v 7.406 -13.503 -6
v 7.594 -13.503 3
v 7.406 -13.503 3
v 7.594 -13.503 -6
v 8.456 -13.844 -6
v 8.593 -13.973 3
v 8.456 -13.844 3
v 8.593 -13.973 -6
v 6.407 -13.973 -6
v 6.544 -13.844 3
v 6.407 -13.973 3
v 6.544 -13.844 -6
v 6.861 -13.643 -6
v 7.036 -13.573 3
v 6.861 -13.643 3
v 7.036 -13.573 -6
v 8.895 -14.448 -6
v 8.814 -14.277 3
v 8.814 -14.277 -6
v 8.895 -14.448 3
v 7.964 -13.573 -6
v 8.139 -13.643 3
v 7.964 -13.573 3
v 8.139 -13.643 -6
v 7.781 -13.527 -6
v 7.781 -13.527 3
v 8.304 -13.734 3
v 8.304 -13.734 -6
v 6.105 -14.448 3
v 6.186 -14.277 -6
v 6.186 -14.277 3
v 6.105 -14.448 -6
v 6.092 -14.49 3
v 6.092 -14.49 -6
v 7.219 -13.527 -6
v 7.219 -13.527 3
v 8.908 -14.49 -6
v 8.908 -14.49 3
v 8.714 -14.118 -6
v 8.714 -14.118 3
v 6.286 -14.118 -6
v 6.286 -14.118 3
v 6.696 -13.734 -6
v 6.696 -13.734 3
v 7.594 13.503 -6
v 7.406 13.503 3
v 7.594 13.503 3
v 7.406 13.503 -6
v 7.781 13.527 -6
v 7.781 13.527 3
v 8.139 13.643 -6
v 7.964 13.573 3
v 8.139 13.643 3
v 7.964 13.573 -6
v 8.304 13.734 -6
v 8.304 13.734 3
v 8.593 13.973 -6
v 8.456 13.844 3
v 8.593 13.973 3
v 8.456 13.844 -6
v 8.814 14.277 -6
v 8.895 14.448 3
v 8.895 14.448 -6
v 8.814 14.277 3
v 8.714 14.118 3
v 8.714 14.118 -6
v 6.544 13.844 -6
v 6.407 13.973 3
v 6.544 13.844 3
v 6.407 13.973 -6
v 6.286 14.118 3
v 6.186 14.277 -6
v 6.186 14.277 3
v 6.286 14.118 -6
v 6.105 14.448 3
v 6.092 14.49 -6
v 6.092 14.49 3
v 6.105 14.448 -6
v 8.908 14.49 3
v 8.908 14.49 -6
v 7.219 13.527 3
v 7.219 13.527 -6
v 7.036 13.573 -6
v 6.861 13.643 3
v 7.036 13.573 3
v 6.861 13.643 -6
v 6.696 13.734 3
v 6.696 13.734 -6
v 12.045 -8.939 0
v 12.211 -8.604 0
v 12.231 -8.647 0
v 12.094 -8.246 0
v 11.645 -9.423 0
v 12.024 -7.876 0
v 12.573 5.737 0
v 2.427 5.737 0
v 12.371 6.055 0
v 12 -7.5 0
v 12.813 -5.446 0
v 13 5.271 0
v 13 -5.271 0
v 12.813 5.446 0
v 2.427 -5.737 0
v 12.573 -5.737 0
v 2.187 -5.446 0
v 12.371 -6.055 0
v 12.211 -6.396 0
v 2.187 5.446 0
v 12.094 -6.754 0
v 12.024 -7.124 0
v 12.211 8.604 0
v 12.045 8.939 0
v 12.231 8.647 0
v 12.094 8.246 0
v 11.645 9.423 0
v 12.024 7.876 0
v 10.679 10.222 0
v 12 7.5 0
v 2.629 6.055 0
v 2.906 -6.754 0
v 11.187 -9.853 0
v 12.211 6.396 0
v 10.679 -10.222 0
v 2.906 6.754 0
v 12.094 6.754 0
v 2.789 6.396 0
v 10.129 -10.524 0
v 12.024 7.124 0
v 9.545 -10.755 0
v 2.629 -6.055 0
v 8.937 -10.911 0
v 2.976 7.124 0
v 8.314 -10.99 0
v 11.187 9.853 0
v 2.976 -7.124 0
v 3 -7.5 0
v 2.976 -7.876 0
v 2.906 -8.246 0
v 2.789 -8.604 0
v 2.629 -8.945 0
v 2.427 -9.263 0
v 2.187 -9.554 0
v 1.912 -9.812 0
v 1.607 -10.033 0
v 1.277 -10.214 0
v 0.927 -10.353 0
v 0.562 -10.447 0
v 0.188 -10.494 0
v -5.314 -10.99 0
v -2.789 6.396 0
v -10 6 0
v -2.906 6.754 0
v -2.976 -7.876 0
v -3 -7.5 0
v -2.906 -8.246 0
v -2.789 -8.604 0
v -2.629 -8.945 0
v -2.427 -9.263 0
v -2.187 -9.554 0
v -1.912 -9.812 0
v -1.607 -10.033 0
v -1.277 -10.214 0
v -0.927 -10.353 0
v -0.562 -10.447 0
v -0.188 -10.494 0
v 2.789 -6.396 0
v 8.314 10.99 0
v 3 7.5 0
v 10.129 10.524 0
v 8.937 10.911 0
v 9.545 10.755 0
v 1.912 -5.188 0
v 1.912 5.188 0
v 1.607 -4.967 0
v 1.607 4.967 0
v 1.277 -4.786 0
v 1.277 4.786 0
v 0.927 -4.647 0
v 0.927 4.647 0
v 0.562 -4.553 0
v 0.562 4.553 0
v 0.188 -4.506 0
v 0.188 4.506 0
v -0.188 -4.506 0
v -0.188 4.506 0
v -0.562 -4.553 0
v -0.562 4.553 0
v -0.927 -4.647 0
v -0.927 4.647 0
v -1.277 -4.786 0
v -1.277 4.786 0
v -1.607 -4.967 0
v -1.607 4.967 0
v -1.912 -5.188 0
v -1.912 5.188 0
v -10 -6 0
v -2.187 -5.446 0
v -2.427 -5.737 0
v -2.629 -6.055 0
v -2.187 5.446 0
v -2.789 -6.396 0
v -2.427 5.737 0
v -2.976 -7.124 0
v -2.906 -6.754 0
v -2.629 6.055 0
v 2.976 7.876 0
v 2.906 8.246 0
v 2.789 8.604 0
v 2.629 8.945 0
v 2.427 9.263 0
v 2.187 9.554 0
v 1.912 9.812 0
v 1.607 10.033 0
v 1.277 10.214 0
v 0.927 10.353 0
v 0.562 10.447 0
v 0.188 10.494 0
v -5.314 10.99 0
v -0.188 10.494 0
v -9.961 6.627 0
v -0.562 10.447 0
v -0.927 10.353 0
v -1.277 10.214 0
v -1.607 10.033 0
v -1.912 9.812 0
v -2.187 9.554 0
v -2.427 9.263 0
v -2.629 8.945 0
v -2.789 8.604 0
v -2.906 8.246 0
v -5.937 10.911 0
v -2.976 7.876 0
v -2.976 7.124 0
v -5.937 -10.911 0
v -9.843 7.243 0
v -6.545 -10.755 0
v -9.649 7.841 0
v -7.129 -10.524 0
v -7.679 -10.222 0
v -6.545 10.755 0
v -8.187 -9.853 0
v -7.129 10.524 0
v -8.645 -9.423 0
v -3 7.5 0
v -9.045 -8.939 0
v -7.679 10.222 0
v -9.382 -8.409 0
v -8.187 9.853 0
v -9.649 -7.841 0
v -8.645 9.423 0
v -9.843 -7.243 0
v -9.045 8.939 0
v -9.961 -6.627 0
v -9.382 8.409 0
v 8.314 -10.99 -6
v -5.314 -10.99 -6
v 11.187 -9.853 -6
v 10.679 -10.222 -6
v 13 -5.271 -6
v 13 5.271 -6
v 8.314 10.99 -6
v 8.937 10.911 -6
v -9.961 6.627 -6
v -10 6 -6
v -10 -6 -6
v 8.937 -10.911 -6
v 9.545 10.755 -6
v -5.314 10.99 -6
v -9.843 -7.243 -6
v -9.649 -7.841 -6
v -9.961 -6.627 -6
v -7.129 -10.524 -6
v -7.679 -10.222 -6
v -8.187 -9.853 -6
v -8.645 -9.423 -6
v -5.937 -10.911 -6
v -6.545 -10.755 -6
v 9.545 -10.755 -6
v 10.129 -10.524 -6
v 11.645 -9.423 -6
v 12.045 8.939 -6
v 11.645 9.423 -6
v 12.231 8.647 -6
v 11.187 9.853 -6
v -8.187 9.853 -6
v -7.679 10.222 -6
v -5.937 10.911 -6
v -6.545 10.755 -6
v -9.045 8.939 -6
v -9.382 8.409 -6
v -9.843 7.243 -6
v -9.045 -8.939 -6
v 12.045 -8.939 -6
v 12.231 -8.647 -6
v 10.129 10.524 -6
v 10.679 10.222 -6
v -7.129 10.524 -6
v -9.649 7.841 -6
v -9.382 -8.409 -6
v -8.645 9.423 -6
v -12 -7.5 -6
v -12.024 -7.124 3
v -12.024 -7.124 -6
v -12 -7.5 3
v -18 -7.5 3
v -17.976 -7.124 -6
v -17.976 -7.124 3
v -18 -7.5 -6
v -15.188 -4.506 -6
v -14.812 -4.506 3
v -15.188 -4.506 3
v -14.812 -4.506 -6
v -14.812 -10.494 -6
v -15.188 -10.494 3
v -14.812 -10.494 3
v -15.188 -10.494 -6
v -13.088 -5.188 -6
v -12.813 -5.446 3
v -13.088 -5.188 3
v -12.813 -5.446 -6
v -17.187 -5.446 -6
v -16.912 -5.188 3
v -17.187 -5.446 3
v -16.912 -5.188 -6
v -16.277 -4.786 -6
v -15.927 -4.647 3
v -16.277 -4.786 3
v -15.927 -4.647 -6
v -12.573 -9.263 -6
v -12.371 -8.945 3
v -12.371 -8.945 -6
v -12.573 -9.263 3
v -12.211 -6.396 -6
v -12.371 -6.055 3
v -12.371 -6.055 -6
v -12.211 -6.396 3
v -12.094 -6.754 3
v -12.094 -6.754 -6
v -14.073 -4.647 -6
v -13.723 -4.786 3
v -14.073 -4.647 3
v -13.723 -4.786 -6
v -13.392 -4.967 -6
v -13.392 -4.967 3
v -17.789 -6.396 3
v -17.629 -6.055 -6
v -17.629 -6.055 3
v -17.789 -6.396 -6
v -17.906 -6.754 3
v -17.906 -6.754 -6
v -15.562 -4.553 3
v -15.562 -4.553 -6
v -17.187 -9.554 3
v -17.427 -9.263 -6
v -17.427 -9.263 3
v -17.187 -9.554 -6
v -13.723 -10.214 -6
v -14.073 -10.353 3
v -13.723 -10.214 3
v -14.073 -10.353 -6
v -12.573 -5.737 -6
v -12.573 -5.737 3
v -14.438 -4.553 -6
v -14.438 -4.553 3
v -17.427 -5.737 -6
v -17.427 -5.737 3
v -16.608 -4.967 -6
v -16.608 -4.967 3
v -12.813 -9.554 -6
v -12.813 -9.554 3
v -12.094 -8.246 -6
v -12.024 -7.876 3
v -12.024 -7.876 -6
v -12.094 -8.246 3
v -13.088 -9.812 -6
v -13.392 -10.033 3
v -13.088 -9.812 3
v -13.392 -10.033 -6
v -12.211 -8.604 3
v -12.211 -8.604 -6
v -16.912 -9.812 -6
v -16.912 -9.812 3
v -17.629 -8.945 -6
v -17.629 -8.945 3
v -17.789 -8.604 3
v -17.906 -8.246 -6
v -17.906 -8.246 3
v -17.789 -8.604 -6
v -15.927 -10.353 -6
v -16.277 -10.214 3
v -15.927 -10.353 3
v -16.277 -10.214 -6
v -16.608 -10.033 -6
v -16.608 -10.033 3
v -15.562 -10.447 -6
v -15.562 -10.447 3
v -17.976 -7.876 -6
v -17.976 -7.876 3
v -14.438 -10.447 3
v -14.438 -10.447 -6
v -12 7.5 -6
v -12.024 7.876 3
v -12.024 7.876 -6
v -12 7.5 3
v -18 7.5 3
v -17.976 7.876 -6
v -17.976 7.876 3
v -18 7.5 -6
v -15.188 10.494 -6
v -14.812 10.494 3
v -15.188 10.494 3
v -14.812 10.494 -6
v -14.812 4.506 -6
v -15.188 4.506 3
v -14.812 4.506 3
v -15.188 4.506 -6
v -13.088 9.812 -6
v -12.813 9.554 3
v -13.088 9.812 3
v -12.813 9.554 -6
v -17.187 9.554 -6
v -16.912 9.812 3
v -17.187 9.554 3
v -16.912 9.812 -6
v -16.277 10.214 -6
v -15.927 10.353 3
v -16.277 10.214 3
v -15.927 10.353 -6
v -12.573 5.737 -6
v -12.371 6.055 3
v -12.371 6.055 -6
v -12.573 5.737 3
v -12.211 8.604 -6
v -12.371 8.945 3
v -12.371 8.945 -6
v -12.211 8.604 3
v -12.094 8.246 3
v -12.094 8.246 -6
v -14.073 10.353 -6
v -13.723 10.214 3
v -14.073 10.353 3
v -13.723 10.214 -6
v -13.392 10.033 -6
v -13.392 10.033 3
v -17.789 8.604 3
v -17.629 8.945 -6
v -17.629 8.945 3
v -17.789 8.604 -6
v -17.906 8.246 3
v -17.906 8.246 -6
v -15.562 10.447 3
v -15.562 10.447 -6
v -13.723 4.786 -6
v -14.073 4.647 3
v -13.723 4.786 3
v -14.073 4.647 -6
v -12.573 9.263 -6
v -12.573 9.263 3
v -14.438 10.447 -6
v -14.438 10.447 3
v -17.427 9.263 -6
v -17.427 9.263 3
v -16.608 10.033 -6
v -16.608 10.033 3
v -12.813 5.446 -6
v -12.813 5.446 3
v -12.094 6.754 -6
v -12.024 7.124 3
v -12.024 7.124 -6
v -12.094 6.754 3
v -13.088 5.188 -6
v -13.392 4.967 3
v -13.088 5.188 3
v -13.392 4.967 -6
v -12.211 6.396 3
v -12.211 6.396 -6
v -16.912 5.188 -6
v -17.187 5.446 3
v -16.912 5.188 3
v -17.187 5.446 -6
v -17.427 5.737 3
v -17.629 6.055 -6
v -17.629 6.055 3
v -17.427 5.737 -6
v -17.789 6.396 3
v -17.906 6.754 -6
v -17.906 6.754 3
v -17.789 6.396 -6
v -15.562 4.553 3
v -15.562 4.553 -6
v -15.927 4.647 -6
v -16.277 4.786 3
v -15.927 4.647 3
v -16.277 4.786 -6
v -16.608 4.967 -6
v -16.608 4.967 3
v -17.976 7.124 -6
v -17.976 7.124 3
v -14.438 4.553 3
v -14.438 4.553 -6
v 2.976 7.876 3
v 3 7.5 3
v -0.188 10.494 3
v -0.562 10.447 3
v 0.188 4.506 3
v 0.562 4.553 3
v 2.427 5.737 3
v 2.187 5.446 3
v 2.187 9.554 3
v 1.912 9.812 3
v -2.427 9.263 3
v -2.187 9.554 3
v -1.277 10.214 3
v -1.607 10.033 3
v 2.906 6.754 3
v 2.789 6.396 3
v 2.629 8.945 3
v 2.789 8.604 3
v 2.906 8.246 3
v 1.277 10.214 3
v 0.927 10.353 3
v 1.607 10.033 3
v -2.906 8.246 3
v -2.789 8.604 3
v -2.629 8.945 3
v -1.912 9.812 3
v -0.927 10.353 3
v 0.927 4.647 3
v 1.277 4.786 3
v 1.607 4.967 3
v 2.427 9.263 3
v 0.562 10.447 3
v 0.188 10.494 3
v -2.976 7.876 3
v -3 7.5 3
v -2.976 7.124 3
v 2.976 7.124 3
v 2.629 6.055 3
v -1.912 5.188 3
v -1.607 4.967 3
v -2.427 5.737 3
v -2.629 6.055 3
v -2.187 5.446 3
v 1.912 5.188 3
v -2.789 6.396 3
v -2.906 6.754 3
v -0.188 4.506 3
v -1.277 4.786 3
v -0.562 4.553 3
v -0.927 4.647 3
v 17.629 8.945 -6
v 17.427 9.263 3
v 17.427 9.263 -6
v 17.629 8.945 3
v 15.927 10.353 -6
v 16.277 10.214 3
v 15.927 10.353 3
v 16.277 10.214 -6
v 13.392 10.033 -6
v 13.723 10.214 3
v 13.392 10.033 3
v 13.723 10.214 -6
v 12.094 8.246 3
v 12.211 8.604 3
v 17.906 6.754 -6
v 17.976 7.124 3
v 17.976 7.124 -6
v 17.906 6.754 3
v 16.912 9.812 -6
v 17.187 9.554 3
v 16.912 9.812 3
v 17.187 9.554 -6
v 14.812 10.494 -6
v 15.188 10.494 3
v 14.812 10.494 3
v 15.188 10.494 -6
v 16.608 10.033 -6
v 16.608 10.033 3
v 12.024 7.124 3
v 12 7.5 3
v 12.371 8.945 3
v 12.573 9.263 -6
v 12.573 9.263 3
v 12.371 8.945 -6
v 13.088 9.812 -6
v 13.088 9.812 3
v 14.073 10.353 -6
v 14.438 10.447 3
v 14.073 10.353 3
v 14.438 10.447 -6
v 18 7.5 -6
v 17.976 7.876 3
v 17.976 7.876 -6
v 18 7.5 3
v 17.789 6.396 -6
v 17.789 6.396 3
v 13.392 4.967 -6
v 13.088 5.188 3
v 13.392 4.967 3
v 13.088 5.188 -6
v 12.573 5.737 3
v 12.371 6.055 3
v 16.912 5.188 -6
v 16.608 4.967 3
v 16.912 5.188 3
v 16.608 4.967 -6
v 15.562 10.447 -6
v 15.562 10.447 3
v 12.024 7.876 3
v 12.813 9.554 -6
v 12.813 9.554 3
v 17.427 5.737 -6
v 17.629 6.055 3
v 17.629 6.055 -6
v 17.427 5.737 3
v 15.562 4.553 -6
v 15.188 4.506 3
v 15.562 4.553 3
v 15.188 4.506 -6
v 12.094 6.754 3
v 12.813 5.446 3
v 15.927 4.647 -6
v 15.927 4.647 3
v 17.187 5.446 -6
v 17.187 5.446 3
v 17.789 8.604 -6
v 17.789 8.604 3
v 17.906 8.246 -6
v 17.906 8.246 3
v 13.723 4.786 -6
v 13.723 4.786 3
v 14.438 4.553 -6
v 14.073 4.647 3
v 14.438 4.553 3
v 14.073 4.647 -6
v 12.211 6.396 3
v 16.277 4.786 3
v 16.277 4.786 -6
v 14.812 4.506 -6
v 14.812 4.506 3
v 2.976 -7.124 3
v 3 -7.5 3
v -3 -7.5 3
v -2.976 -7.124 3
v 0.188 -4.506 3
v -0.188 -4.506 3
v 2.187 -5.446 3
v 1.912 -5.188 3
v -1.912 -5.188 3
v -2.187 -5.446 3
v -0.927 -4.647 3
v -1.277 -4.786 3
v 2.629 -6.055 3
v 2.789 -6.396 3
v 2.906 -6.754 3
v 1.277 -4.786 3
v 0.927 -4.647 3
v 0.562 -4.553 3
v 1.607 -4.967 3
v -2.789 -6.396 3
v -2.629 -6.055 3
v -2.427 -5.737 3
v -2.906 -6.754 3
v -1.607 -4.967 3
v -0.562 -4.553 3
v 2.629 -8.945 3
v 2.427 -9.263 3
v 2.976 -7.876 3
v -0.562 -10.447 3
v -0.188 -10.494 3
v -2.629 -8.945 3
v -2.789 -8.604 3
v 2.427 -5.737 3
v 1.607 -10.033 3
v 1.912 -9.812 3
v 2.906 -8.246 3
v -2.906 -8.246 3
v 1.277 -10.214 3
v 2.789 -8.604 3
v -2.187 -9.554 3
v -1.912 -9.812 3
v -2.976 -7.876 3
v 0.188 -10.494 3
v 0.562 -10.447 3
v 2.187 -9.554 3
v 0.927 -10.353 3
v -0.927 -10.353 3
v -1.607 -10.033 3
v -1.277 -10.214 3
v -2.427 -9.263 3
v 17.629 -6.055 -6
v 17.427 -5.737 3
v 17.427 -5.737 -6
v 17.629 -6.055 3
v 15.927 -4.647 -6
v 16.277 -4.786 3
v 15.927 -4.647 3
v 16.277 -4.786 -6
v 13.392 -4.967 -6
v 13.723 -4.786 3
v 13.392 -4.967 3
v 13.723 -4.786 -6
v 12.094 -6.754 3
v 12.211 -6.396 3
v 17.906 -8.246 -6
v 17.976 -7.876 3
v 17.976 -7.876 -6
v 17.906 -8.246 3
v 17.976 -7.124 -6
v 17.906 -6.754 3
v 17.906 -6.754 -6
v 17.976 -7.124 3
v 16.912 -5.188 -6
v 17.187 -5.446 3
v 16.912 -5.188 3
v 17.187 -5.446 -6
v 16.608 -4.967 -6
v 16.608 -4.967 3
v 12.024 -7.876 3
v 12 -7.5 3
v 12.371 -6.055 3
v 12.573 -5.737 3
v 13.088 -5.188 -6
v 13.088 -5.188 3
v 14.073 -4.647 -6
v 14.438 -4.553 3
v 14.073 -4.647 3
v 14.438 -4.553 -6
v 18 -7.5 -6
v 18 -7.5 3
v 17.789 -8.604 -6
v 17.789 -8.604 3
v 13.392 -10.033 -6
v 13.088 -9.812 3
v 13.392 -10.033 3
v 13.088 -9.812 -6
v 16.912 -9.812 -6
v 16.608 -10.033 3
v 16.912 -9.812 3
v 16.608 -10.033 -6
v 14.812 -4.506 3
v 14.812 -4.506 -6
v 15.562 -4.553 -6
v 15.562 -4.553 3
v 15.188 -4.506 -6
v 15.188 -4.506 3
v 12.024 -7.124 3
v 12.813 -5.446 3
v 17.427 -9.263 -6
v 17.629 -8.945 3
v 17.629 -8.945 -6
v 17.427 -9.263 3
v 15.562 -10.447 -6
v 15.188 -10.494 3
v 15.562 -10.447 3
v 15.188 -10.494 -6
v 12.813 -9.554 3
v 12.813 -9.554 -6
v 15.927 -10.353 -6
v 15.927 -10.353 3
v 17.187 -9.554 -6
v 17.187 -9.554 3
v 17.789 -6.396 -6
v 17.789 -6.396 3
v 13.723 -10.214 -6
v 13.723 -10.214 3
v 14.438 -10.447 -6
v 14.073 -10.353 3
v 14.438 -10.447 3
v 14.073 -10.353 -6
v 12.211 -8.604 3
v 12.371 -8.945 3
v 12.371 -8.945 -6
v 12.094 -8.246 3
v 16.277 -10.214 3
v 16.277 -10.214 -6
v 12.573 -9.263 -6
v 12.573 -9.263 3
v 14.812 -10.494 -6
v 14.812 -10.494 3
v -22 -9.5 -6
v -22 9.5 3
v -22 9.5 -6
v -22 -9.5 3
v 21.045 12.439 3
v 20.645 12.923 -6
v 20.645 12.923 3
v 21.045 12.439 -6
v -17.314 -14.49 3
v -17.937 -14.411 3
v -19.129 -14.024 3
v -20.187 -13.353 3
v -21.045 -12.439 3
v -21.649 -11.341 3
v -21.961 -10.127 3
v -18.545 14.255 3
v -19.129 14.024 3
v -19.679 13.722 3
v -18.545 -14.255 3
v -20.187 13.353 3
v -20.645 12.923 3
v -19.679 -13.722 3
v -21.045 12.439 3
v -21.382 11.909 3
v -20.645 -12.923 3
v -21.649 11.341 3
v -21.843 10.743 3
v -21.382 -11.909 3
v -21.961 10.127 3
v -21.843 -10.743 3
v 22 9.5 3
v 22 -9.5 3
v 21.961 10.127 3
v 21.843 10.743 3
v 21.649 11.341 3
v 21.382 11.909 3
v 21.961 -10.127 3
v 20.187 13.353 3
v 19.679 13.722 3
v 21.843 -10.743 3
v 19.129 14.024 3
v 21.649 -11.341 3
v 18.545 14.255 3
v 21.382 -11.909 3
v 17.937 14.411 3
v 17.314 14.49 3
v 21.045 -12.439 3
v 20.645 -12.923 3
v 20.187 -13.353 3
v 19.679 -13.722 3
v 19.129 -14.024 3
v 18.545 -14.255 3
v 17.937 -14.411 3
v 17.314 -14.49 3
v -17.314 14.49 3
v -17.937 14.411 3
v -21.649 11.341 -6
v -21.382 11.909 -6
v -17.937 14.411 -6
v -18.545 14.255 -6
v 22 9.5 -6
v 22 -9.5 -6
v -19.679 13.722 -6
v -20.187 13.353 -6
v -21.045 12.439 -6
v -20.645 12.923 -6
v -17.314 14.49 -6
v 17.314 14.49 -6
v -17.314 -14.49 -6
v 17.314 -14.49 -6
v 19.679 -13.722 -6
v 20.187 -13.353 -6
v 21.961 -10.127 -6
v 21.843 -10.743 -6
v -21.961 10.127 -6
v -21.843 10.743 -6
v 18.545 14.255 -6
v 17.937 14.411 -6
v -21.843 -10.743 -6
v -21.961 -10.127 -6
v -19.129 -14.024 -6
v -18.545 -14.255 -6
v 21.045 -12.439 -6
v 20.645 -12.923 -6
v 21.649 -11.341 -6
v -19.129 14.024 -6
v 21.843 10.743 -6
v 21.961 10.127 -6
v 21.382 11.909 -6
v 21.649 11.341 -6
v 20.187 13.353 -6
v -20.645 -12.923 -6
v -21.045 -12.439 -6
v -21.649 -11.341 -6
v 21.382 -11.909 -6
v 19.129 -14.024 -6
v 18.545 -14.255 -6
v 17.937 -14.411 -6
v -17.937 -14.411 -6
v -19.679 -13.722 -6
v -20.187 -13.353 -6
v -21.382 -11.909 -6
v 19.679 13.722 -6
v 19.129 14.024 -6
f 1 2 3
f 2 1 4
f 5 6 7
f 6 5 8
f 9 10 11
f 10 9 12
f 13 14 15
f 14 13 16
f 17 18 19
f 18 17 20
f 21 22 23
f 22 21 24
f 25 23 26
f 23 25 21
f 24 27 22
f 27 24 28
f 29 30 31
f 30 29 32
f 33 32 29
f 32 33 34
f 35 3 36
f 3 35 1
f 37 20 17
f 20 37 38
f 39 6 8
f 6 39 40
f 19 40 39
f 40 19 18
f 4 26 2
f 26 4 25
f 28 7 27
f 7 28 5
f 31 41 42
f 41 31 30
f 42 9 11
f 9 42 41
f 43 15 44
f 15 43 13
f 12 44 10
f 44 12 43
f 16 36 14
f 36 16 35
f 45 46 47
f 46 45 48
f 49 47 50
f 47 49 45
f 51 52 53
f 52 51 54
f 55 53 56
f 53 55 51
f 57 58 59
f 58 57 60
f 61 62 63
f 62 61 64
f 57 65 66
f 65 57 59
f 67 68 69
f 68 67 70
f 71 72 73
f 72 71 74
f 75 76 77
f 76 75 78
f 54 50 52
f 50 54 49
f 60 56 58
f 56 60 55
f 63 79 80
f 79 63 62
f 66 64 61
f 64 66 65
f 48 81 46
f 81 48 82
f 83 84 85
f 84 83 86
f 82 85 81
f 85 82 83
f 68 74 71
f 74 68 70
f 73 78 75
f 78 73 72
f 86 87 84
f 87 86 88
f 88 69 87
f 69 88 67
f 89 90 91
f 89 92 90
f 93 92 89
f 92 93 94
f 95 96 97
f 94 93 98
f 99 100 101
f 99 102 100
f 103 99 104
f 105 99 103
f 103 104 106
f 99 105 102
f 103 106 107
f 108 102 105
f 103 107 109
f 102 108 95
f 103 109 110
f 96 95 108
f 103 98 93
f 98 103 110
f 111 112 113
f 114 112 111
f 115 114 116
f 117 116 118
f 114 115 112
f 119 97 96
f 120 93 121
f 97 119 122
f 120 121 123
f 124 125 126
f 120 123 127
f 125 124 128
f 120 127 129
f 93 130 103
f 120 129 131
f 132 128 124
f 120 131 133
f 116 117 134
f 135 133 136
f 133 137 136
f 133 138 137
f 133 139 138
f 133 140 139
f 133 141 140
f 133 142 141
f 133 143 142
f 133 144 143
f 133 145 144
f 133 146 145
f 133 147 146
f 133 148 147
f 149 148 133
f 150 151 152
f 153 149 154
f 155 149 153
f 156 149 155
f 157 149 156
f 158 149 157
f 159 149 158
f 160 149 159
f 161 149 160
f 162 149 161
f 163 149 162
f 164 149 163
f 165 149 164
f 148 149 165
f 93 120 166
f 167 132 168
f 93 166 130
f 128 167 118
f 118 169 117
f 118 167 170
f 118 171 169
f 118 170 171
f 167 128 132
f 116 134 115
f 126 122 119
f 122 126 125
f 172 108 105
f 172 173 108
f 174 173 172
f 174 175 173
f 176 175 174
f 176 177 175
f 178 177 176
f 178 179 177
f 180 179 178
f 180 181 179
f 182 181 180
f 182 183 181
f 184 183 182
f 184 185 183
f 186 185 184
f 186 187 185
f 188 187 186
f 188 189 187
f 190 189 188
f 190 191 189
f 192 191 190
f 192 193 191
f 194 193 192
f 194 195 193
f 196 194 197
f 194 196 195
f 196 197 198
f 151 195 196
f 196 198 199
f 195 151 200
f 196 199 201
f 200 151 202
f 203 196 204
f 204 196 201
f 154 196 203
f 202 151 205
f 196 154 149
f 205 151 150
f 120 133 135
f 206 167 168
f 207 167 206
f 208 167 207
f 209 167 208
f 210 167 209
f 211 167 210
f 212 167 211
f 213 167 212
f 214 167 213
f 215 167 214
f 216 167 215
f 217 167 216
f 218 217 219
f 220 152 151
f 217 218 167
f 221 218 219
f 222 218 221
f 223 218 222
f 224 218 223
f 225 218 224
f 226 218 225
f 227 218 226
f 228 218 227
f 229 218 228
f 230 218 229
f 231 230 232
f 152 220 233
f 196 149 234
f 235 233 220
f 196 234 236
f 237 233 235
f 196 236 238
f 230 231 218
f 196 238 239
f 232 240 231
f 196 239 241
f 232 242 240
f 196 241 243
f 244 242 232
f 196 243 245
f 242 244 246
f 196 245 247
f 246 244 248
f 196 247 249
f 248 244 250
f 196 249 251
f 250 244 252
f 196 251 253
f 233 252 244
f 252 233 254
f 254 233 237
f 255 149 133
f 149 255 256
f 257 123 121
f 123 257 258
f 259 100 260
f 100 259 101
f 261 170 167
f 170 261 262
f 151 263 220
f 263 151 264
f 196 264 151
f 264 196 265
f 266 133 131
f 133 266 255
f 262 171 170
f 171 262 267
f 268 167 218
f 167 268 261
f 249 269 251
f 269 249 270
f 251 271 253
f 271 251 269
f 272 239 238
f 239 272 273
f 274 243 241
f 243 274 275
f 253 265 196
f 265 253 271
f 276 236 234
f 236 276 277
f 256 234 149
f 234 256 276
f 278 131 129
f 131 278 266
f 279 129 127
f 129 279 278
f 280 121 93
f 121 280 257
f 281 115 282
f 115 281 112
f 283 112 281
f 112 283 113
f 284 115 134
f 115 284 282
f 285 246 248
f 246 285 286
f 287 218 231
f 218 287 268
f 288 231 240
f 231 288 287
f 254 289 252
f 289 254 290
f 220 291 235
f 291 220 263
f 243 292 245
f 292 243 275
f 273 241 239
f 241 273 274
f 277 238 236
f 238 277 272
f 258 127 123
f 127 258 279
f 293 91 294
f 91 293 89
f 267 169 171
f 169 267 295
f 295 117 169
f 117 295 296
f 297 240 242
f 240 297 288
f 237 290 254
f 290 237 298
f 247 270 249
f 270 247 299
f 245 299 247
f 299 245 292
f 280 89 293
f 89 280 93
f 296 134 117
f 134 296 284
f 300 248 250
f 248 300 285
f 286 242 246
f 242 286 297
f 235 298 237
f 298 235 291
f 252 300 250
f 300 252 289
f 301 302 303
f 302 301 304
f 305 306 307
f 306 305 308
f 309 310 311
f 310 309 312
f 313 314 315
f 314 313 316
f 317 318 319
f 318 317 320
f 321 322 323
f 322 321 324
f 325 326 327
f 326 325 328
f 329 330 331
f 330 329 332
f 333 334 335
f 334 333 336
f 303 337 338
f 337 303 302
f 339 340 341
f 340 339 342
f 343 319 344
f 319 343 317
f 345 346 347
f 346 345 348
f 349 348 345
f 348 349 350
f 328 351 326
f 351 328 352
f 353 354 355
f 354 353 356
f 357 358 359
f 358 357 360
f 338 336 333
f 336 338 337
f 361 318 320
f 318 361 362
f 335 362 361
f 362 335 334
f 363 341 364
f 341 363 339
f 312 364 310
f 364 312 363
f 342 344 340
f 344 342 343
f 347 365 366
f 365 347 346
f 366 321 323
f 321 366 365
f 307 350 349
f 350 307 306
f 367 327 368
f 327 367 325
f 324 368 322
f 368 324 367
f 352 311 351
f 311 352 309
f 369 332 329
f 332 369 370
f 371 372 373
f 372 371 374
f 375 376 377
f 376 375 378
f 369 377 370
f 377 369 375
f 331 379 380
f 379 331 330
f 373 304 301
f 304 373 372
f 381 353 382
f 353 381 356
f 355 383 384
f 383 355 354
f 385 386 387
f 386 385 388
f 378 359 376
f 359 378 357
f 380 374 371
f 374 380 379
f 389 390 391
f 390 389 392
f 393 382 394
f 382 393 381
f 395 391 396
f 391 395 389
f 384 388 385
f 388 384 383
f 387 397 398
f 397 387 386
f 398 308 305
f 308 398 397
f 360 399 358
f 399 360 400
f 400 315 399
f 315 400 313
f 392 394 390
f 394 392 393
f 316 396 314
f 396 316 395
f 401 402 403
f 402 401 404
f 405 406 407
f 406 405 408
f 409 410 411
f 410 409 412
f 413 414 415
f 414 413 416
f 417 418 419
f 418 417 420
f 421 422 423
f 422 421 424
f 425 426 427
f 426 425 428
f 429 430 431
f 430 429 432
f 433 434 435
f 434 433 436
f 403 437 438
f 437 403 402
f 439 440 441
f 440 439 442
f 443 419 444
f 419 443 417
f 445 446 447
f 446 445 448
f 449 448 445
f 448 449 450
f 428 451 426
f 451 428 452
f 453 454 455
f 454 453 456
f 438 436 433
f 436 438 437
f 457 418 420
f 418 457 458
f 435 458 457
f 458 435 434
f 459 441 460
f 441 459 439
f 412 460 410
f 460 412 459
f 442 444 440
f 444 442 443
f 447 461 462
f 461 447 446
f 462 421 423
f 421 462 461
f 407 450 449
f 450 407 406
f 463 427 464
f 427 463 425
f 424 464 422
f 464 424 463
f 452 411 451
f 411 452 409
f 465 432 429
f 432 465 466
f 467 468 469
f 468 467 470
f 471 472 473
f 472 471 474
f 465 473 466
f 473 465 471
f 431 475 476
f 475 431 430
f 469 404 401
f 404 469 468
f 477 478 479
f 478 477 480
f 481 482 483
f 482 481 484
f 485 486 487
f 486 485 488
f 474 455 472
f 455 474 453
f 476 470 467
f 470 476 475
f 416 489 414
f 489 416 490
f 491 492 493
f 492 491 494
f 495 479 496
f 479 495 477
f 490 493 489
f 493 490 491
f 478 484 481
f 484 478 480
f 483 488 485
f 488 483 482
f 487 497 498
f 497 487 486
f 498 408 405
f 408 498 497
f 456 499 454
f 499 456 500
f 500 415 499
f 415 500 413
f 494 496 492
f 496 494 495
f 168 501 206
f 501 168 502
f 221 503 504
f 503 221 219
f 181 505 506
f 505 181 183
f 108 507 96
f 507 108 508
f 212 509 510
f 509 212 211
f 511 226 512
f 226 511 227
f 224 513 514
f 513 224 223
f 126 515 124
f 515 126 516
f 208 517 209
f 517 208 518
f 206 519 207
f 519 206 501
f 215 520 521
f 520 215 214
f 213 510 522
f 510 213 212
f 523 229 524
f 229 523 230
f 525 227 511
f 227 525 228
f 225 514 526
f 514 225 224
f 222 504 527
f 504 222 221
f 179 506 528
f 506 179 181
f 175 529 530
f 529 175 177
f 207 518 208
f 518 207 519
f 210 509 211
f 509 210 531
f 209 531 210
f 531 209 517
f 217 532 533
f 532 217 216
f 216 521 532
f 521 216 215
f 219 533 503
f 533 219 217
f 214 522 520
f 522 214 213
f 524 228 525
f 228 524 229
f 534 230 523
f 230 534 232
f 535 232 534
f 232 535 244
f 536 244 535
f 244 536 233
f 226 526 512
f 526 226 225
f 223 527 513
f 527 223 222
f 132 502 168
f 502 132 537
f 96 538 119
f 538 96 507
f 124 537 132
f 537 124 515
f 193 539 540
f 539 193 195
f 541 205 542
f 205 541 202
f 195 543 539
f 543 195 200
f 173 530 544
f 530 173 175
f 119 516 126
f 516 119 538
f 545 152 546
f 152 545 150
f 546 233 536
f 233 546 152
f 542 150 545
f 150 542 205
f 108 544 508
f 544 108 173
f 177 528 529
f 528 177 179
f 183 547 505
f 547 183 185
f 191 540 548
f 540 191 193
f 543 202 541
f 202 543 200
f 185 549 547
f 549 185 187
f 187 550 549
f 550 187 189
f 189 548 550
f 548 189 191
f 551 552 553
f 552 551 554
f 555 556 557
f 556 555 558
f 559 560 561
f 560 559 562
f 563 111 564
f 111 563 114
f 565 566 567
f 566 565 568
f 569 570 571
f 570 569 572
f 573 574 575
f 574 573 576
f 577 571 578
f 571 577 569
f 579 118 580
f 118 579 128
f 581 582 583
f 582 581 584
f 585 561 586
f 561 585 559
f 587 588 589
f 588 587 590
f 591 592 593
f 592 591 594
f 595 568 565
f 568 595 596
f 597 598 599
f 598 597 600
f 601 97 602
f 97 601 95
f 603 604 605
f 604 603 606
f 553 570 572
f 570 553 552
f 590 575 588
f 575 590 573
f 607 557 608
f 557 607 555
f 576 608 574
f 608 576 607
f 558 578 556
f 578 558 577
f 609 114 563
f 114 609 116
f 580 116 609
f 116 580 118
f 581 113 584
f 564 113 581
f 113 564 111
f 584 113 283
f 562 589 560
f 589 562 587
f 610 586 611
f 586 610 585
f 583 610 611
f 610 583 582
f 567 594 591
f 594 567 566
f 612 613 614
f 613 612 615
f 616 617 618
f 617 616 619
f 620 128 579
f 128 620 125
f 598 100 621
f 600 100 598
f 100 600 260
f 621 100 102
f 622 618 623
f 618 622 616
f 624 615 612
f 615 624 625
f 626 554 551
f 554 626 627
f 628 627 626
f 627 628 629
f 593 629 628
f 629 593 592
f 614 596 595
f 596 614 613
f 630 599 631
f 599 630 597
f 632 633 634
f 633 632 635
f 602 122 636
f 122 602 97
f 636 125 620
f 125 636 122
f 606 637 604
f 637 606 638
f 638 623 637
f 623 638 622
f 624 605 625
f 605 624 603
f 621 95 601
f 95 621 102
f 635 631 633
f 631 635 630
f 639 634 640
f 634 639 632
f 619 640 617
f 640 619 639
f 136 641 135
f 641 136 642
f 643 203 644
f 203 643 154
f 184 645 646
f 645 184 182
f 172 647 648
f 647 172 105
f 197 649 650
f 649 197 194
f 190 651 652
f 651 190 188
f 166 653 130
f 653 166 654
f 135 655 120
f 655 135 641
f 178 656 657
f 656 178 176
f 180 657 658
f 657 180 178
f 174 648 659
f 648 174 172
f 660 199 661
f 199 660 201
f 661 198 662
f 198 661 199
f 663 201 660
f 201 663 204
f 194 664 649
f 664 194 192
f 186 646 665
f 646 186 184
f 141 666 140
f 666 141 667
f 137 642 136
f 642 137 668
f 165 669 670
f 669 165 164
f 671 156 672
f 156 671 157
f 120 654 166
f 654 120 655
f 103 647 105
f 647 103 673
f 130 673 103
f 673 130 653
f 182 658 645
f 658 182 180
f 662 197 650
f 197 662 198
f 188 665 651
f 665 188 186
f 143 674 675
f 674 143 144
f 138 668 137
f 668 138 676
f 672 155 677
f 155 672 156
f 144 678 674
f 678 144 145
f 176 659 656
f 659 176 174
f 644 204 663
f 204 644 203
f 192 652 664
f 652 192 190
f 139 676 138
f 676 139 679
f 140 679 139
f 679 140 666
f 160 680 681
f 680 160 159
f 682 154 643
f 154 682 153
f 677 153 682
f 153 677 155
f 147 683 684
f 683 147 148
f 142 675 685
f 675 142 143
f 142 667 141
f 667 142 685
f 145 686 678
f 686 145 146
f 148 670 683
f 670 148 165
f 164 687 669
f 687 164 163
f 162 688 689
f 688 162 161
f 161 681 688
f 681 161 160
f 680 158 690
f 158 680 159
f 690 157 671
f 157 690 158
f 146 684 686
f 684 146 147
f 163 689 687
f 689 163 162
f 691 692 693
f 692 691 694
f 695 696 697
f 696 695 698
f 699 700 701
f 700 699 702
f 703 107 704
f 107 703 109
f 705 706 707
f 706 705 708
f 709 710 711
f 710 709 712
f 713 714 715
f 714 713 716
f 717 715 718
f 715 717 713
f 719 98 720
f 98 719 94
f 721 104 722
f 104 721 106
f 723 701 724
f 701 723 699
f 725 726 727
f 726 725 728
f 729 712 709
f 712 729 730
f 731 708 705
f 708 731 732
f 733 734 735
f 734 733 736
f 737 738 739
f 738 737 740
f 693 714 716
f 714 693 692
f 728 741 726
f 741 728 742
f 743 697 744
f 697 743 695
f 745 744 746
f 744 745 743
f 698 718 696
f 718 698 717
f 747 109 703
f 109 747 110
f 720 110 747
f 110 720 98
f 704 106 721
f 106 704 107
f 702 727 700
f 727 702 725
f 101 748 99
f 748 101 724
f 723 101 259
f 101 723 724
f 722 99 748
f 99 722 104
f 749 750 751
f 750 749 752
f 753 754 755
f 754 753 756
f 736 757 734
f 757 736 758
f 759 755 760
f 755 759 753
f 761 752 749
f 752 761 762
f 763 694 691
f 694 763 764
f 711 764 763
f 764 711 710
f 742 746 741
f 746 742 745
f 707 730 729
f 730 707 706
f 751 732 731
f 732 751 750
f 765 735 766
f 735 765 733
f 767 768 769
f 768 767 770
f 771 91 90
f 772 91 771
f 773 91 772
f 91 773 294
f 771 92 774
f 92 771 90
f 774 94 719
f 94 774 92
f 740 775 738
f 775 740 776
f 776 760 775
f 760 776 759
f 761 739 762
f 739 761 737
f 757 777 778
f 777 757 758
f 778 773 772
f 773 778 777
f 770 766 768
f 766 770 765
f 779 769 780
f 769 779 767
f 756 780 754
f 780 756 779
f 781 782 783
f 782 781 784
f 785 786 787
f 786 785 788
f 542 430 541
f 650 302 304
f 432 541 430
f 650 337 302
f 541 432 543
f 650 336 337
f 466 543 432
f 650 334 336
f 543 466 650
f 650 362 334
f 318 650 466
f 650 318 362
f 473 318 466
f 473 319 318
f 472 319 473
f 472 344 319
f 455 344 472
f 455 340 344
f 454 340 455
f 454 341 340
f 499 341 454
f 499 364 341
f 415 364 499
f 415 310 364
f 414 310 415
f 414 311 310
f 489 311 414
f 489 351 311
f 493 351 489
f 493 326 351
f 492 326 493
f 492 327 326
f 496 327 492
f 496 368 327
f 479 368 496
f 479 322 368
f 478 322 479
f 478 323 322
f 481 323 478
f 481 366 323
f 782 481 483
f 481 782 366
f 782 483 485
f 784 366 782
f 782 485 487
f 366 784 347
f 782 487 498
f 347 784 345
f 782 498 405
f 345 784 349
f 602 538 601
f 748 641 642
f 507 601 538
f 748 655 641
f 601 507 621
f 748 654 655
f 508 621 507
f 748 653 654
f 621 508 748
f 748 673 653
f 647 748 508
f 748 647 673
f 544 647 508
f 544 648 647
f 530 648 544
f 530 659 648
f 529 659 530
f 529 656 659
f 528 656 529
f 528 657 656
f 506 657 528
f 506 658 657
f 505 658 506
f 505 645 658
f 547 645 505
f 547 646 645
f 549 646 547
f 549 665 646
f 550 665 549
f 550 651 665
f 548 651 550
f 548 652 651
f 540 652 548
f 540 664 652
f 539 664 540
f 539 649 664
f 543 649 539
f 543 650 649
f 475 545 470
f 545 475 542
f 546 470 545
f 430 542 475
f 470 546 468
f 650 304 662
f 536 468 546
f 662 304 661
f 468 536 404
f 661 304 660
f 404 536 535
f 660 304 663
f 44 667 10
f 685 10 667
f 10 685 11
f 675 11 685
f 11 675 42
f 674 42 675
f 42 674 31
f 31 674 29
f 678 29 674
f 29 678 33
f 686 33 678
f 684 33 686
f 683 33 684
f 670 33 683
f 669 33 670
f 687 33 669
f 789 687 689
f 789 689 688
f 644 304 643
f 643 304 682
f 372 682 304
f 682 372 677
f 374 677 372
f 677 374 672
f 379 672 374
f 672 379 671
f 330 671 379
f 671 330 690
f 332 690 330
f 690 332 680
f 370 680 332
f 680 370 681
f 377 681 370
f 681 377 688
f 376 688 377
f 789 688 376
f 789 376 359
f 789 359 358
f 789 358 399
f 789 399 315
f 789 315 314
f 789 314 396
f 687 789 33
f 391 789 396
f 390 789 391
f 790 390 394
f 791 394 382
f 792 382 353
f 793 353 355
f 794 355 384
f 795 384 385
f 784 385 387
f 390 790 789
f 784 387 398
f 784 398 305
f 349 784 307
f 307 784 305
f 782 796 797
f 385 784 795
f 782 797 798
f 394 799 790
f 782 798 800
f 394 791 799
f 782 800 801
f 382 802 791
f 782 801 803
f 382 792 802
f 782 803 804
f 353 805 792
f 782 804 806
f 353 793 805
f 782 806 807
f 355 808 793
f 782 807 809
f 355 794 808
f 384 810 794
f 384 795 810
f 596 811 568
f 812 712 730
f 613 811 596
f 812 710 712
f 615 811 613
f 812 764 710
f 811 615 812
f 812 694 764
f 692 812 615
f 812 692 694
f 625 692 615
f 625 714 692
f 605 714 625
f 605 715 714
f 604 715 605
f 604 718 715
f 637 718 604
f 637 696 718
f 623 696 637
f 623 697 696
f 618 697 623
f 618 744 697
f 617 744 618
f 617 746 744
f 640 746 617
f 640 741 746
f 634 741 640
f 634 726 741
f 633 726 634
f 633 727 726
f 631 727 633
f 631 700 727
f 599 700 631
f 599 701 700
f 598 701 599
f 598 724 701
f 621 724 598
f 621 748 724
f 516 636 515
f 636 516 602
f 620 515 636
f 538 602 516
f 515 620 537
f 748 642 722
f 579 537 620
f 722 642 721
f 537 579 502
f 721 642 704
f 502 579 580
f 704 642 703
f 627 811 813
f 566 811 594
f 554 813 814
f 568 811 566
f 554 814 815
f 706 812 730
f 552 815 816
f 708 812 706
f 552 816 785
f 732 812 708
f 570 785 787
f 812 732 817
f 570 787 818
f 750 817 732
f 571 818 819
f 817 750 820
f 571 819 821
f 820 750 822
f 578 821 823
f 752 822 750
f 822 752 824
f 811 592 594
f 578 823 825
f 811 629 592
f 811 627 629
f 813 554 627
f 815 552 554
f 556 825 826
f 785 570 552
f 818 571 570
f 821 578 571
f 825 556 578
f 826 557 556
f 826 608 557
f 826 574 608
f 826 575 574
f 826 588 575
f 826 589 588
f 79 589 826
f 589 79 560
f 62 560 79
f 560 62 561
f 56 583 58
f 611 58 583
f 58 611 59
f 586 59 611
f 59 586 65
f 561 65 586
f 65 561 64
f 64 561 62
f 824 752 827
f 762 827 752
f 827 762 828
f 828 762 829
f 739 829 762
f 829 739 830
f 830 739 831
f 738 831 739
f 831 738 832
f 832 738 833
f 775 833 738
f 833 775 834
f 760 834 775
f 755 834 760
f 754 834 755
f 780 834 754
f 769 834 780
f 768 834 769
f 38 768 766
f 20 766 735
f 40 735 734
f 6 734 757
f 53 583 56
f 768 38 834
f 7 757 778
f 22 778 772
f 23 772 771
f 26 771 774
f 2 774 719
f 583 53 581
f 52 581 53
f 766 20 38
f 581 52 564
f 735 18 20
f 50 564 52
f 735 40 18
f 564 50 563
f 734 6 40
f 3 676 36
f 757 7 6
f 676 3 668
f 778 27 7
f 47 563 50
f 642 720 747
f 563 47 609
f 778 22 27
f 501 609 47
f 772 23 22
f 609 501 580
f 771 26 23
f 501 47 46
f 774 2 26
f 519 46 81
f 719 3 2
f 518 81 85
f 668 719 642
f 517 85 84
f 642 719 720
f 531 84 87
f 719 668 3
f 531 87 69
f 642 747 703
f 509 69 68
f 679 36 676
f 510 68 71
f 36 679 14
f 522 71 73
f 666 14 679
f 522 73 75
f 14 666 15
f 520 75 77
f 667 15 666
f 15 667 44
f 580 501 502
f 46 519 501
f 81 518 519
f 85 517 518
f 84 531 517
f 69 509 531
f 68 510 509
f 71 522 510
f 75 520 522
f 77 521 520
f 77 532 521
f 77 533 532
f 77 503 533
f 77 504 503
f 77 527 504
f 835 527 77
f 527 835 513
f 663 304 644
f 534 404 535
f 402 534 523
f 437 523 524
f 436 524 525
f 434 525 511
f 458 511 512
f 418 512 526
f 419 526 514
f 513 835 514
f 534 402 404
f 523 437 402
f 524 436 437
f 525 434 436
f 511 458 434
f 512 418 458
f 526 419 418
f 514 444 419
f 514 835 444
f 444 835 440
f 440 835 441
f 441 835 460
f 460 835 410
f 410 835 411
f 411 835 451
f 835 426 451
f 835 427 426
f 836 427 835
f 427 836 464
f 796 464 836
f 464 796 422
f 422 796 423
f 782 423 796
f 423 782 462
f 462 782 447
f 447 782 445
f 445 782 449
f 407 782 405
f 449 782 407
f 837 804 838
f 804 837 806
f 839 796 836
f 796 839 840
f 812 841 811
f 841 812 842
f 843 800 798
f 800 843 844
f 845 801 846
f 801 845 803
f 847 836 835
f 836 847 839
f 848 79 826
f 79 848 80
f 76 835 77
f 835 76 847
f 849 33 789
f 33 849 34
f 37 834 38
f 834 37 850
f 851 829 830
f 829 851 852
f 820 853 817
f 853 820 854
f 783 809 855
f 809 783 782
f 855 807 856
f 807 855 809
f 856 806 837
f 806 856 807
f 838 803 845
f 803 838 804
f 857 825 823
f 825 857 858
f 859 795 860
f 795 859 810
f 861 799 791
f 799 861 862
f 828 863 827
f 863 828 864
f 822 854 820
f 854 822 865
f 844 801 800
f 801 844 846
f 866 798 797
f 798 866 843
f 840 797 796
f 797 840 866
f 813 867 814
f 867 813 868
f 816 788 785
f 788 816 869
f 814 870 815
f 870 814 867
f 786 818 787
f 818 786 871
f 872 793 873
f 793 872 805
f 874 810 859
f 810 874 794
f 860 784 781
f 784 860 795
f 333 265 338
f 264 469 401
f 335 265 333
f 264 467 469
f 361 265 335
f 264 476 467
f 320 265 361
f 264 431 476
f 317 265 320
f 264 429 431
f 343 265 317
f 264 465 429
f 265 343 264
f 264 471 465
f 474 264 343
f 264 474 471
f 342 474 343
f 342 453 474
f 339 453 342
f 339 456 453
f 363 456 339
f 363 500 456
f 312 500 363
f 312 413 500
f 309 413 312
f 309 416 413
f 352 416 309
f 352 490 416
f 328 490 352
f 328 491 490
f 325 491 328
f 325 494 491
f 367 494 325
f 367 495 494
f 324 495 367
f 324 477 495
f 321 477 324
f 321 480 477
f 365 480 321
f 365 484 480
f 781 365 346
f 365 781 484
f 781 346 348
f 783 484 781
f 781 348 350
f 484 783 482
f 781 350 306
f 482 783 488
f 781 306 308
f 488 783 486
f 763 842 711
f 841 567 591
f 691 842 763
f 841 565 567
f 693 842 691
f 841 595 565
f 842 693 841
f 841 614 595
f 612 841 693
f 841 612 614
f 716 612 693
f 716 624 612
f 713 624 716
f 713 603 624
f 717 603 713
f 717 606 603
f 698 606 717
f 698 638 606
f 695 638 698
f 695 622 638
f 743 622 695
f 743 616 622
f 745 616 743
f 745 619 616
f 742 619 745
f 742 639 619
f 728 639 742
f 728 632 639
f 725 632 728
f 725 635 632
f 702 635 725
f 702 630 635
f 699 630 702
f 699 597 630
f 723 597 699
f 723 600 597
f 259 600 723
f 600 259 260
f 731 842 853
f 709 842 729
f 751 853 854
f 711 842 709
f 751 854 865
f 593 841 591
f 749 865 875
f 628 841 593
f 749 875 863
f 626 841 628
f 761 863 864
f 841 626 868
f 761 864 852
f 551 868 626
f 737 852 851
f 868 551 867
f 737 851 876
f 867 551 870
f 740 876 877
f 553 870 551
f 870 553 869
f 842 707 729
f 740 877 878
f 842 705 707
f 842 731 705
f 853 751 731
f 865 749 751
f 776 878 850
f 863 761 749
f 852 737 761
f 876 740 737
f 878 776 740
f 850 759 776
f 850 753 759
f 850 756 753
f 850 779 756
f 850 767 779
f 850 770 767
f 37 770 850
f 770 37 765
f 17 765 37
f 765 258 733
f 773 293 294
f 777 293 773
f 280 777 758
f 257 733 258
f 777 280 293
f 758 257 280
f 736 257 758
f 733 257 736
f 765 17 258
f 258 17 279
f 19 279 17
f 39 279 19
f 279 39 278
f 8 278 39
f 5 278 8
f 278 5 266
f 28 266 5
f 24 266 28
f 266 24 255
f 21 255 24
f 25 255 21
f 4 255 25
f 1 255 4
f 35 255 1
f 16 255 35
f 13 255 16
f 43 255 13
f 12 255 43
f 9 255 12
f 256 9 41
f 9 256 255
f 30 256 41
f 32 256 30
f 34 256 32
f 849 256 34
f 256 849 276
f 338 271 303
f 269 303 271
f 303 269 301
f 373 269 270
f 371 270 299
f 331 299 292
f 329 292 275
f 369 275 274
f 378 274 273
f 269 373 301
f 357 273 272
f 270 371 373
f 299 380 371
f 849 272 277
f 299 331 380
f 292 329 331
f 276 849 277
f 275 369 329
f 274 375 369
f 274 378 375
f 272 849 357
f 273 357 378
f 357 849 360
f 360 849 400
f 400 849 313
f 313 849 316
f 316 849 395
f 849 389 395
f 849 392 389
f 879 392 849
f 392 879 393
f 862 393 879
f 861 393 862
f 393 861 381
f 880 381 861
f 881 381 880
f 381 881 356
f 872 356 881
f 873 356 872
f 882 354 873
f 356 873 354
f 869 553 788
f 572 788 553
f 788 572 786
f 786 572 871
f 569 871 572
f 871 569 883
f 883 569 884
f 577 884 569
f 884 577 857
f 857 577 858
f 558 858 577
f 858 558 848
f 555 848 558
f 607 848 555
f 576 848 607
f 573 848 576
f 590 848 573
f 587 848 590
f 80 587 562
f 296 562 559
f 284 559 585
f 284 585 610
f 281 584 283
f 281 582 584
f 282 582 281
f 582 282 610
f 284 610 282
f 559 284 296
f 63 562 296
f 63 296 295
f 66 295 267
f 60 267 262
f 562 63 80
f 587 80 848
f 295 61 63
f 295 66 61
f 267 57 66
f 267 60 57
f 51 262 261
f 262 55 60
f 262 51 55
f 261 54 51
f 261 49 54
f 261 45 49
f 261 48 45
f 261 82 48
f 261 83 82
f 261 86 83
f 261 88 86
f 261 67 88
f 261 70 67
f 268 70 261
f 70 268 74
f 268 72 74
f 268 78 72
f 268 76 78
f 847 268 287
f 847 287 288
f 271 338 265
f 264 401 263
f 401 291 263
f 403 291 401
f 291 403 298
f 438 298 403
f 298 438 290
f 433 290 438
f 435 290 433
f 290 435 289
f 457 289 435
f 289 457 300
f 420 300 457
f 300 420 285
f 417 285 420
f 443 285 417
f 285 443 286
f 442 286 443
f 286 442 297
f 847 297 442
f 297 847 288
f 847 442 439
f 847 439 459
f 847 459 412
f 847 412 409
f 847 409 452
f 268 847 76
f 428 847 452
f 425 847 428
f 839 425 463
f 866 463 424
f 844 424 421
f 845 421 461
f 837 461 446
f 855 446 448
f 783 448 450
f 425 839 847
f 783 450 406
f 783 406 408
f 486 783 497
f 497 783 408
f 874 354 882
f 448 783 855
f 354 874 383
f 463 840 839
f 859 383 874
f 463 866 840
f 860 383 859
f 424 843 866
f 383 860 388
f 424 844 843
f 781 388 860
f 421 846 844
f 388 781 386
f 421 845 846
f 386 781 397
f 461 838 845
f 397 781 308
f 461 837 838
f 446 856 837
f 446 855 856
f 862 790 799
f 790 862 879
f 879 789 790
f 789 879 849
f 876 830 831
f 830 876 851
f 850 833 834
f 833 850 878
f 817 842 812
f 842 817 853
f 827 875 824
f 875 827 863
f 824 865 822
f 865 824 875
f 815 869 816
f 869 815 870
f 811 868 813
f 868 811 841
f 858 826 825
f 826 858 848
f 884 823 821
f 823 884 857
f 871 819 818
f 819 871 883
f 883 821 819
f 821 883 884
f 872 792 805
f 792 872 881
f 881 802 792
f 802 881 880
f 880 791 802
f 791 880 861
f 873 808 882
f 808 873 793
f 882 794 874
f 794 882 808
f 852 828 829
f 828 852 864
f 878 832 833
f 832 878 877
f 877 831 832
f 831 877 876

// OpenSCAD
$fn = 50;


difference() {
	union() {
		translate(v = [0, 0, -6]) {
			hull() {
				translate(v = [-17.0000000000, 9.5000000000, 0]) {
					cylinder(h = 9, r = 5);
				}
				translate(v = [17.0000000000, 9.5000000000, 0]) {
					cylinder(h = 9, r = 5);
				}
				translate(v = [-17.0000000000, -9.5000000000, 0]) {
					cylinder(h = 9, r = 5);
				}
				translate(v = [17.0000000000, -9.5000000000, 0]) {
					cylinder(h = 9, r = 5);
				}
			}
		}
	}
	union() {
		translate(v = [7.5000000000, -15, -9]) {
			rotate(a = [0, 0, 0]) {
				difference() {
					union() {
						linear_extrude(height = 2.5000000000) {
							polygon(points = [[3.1735000000, 0.0000000000], [1.5867500000, 2.7483316189], [-1.5867500000, 2.7483316189], [-3.1735000000, 0.0000000000], [-1.5867500000, -2.7483316189], [1.5867500000, -2.7483316189]]);
						}
						translate(v = [0, 0, -50.0000000000]) {
							cylinder(h = 100, r = 1.5000000000);
						}
						translate(v = [0, 0, -50.0000000000]) {
							cylinder(h = 100, r = 1.5000000000);
						}
						translate(v = [0, 0, -50.0000000000]) {
							cylinder(h = 100, r = 1.5000000000);
						}
					}
					union();
				}
			}
		}
		translate(v = [7.5000000000, 15, -9]) {
			rotate(a = [0, 0, 0]) {
				difference() {
					union() {
						linear_extrude(height = 2.5000000000) {
							polygon(points = [[3.1735000000, 0.0000000000], [1.5867500000, 2.7483316189], [-1.5867500000, 2.7483316189], [-3.1735000000, 0.0000000000], [-1.5867500000, -2.7483316189], [1.5867500000, -2.7483316189]]);
						}
						translate(v = [0, 0, -50.0000000000]) {
							cylinder(h = 100, r = 1.5000000000);
						}
						translate(v = [0, 0, -50.0000000000]) {
							cylinder(h = 100, r = 1.5000000000);
						}
						translate(v = [0, 0, -50.0000000000]) {
							cylinder(h = 100, r = 1.5000000000);
						}
					}
					union();
				}
			}
		}
		translate(v = [0, 0, -3]) {
			rotate(a = [0, 0, 180]) {
				difference() {
					union() {
						translate(v = [-1.5000000000, 0, -6]) {
							#hull() {
								translate(v = [-6.5000000000, 6.0000000000, 0]) {
									cylinder(h = 9, r = 5);
								}
								translate(v = [6.5000000000, 6.0000000000, 0]) {
									cylinder(h = 9, r = 5);
								}
								translate(v = [-6.5000000000, -6.0000000000, 0]) {
									cylinder(h = 9, r = 5);
								}
								translate(v = [6.5000000000, -6.0000000000, 0]) {
									cylinder(h = 9, r = 5);
								}
							}
						}
					}
					union();
				}
			}
		}
		translate(v = [-15.0000000000, -7.5000000000, -50.0000000000]) {
			cylinder(h = 100, r = 3.0000000000);
		}
		translate(v = [-15.0000000000, 7.5000000000, -50.0000000000]) {
			cylinder(h = 100, r = 3.0000000000);
		}
		translate(v = [-15.0000000000, 7.5000000000, -50.0000000000]) {
			cylinder(h = 100, r = 3.0000000000);
		}
		translate(v = [0.0000000000, 7.5000000000, -50.0000000000]) {
			cylinder(h = 100, r = 3.0000000000);
		}
		translate(v = [15.0000000000, 7.5000000000, -50.0000000000]) {
			cylinder(h = 100, r = 3.0000000000);
		}
		translate(v = [-15.0000000000, -7.5000000000, -50.0000000000]) {
			cylinder(h = 100, r = 3.0000000000);
		}
		translate(v = [0.0000000000, -7.5000000000, -50.0000000000]) {
			cylinder(h = 100, r = 3.0000000000);
		}
		translate(v = [15.0000000000, -7.5000000000, -50.0000000000]) {
			cylinder(h = 100, r = 3.0000000000);
		}
	}
}
